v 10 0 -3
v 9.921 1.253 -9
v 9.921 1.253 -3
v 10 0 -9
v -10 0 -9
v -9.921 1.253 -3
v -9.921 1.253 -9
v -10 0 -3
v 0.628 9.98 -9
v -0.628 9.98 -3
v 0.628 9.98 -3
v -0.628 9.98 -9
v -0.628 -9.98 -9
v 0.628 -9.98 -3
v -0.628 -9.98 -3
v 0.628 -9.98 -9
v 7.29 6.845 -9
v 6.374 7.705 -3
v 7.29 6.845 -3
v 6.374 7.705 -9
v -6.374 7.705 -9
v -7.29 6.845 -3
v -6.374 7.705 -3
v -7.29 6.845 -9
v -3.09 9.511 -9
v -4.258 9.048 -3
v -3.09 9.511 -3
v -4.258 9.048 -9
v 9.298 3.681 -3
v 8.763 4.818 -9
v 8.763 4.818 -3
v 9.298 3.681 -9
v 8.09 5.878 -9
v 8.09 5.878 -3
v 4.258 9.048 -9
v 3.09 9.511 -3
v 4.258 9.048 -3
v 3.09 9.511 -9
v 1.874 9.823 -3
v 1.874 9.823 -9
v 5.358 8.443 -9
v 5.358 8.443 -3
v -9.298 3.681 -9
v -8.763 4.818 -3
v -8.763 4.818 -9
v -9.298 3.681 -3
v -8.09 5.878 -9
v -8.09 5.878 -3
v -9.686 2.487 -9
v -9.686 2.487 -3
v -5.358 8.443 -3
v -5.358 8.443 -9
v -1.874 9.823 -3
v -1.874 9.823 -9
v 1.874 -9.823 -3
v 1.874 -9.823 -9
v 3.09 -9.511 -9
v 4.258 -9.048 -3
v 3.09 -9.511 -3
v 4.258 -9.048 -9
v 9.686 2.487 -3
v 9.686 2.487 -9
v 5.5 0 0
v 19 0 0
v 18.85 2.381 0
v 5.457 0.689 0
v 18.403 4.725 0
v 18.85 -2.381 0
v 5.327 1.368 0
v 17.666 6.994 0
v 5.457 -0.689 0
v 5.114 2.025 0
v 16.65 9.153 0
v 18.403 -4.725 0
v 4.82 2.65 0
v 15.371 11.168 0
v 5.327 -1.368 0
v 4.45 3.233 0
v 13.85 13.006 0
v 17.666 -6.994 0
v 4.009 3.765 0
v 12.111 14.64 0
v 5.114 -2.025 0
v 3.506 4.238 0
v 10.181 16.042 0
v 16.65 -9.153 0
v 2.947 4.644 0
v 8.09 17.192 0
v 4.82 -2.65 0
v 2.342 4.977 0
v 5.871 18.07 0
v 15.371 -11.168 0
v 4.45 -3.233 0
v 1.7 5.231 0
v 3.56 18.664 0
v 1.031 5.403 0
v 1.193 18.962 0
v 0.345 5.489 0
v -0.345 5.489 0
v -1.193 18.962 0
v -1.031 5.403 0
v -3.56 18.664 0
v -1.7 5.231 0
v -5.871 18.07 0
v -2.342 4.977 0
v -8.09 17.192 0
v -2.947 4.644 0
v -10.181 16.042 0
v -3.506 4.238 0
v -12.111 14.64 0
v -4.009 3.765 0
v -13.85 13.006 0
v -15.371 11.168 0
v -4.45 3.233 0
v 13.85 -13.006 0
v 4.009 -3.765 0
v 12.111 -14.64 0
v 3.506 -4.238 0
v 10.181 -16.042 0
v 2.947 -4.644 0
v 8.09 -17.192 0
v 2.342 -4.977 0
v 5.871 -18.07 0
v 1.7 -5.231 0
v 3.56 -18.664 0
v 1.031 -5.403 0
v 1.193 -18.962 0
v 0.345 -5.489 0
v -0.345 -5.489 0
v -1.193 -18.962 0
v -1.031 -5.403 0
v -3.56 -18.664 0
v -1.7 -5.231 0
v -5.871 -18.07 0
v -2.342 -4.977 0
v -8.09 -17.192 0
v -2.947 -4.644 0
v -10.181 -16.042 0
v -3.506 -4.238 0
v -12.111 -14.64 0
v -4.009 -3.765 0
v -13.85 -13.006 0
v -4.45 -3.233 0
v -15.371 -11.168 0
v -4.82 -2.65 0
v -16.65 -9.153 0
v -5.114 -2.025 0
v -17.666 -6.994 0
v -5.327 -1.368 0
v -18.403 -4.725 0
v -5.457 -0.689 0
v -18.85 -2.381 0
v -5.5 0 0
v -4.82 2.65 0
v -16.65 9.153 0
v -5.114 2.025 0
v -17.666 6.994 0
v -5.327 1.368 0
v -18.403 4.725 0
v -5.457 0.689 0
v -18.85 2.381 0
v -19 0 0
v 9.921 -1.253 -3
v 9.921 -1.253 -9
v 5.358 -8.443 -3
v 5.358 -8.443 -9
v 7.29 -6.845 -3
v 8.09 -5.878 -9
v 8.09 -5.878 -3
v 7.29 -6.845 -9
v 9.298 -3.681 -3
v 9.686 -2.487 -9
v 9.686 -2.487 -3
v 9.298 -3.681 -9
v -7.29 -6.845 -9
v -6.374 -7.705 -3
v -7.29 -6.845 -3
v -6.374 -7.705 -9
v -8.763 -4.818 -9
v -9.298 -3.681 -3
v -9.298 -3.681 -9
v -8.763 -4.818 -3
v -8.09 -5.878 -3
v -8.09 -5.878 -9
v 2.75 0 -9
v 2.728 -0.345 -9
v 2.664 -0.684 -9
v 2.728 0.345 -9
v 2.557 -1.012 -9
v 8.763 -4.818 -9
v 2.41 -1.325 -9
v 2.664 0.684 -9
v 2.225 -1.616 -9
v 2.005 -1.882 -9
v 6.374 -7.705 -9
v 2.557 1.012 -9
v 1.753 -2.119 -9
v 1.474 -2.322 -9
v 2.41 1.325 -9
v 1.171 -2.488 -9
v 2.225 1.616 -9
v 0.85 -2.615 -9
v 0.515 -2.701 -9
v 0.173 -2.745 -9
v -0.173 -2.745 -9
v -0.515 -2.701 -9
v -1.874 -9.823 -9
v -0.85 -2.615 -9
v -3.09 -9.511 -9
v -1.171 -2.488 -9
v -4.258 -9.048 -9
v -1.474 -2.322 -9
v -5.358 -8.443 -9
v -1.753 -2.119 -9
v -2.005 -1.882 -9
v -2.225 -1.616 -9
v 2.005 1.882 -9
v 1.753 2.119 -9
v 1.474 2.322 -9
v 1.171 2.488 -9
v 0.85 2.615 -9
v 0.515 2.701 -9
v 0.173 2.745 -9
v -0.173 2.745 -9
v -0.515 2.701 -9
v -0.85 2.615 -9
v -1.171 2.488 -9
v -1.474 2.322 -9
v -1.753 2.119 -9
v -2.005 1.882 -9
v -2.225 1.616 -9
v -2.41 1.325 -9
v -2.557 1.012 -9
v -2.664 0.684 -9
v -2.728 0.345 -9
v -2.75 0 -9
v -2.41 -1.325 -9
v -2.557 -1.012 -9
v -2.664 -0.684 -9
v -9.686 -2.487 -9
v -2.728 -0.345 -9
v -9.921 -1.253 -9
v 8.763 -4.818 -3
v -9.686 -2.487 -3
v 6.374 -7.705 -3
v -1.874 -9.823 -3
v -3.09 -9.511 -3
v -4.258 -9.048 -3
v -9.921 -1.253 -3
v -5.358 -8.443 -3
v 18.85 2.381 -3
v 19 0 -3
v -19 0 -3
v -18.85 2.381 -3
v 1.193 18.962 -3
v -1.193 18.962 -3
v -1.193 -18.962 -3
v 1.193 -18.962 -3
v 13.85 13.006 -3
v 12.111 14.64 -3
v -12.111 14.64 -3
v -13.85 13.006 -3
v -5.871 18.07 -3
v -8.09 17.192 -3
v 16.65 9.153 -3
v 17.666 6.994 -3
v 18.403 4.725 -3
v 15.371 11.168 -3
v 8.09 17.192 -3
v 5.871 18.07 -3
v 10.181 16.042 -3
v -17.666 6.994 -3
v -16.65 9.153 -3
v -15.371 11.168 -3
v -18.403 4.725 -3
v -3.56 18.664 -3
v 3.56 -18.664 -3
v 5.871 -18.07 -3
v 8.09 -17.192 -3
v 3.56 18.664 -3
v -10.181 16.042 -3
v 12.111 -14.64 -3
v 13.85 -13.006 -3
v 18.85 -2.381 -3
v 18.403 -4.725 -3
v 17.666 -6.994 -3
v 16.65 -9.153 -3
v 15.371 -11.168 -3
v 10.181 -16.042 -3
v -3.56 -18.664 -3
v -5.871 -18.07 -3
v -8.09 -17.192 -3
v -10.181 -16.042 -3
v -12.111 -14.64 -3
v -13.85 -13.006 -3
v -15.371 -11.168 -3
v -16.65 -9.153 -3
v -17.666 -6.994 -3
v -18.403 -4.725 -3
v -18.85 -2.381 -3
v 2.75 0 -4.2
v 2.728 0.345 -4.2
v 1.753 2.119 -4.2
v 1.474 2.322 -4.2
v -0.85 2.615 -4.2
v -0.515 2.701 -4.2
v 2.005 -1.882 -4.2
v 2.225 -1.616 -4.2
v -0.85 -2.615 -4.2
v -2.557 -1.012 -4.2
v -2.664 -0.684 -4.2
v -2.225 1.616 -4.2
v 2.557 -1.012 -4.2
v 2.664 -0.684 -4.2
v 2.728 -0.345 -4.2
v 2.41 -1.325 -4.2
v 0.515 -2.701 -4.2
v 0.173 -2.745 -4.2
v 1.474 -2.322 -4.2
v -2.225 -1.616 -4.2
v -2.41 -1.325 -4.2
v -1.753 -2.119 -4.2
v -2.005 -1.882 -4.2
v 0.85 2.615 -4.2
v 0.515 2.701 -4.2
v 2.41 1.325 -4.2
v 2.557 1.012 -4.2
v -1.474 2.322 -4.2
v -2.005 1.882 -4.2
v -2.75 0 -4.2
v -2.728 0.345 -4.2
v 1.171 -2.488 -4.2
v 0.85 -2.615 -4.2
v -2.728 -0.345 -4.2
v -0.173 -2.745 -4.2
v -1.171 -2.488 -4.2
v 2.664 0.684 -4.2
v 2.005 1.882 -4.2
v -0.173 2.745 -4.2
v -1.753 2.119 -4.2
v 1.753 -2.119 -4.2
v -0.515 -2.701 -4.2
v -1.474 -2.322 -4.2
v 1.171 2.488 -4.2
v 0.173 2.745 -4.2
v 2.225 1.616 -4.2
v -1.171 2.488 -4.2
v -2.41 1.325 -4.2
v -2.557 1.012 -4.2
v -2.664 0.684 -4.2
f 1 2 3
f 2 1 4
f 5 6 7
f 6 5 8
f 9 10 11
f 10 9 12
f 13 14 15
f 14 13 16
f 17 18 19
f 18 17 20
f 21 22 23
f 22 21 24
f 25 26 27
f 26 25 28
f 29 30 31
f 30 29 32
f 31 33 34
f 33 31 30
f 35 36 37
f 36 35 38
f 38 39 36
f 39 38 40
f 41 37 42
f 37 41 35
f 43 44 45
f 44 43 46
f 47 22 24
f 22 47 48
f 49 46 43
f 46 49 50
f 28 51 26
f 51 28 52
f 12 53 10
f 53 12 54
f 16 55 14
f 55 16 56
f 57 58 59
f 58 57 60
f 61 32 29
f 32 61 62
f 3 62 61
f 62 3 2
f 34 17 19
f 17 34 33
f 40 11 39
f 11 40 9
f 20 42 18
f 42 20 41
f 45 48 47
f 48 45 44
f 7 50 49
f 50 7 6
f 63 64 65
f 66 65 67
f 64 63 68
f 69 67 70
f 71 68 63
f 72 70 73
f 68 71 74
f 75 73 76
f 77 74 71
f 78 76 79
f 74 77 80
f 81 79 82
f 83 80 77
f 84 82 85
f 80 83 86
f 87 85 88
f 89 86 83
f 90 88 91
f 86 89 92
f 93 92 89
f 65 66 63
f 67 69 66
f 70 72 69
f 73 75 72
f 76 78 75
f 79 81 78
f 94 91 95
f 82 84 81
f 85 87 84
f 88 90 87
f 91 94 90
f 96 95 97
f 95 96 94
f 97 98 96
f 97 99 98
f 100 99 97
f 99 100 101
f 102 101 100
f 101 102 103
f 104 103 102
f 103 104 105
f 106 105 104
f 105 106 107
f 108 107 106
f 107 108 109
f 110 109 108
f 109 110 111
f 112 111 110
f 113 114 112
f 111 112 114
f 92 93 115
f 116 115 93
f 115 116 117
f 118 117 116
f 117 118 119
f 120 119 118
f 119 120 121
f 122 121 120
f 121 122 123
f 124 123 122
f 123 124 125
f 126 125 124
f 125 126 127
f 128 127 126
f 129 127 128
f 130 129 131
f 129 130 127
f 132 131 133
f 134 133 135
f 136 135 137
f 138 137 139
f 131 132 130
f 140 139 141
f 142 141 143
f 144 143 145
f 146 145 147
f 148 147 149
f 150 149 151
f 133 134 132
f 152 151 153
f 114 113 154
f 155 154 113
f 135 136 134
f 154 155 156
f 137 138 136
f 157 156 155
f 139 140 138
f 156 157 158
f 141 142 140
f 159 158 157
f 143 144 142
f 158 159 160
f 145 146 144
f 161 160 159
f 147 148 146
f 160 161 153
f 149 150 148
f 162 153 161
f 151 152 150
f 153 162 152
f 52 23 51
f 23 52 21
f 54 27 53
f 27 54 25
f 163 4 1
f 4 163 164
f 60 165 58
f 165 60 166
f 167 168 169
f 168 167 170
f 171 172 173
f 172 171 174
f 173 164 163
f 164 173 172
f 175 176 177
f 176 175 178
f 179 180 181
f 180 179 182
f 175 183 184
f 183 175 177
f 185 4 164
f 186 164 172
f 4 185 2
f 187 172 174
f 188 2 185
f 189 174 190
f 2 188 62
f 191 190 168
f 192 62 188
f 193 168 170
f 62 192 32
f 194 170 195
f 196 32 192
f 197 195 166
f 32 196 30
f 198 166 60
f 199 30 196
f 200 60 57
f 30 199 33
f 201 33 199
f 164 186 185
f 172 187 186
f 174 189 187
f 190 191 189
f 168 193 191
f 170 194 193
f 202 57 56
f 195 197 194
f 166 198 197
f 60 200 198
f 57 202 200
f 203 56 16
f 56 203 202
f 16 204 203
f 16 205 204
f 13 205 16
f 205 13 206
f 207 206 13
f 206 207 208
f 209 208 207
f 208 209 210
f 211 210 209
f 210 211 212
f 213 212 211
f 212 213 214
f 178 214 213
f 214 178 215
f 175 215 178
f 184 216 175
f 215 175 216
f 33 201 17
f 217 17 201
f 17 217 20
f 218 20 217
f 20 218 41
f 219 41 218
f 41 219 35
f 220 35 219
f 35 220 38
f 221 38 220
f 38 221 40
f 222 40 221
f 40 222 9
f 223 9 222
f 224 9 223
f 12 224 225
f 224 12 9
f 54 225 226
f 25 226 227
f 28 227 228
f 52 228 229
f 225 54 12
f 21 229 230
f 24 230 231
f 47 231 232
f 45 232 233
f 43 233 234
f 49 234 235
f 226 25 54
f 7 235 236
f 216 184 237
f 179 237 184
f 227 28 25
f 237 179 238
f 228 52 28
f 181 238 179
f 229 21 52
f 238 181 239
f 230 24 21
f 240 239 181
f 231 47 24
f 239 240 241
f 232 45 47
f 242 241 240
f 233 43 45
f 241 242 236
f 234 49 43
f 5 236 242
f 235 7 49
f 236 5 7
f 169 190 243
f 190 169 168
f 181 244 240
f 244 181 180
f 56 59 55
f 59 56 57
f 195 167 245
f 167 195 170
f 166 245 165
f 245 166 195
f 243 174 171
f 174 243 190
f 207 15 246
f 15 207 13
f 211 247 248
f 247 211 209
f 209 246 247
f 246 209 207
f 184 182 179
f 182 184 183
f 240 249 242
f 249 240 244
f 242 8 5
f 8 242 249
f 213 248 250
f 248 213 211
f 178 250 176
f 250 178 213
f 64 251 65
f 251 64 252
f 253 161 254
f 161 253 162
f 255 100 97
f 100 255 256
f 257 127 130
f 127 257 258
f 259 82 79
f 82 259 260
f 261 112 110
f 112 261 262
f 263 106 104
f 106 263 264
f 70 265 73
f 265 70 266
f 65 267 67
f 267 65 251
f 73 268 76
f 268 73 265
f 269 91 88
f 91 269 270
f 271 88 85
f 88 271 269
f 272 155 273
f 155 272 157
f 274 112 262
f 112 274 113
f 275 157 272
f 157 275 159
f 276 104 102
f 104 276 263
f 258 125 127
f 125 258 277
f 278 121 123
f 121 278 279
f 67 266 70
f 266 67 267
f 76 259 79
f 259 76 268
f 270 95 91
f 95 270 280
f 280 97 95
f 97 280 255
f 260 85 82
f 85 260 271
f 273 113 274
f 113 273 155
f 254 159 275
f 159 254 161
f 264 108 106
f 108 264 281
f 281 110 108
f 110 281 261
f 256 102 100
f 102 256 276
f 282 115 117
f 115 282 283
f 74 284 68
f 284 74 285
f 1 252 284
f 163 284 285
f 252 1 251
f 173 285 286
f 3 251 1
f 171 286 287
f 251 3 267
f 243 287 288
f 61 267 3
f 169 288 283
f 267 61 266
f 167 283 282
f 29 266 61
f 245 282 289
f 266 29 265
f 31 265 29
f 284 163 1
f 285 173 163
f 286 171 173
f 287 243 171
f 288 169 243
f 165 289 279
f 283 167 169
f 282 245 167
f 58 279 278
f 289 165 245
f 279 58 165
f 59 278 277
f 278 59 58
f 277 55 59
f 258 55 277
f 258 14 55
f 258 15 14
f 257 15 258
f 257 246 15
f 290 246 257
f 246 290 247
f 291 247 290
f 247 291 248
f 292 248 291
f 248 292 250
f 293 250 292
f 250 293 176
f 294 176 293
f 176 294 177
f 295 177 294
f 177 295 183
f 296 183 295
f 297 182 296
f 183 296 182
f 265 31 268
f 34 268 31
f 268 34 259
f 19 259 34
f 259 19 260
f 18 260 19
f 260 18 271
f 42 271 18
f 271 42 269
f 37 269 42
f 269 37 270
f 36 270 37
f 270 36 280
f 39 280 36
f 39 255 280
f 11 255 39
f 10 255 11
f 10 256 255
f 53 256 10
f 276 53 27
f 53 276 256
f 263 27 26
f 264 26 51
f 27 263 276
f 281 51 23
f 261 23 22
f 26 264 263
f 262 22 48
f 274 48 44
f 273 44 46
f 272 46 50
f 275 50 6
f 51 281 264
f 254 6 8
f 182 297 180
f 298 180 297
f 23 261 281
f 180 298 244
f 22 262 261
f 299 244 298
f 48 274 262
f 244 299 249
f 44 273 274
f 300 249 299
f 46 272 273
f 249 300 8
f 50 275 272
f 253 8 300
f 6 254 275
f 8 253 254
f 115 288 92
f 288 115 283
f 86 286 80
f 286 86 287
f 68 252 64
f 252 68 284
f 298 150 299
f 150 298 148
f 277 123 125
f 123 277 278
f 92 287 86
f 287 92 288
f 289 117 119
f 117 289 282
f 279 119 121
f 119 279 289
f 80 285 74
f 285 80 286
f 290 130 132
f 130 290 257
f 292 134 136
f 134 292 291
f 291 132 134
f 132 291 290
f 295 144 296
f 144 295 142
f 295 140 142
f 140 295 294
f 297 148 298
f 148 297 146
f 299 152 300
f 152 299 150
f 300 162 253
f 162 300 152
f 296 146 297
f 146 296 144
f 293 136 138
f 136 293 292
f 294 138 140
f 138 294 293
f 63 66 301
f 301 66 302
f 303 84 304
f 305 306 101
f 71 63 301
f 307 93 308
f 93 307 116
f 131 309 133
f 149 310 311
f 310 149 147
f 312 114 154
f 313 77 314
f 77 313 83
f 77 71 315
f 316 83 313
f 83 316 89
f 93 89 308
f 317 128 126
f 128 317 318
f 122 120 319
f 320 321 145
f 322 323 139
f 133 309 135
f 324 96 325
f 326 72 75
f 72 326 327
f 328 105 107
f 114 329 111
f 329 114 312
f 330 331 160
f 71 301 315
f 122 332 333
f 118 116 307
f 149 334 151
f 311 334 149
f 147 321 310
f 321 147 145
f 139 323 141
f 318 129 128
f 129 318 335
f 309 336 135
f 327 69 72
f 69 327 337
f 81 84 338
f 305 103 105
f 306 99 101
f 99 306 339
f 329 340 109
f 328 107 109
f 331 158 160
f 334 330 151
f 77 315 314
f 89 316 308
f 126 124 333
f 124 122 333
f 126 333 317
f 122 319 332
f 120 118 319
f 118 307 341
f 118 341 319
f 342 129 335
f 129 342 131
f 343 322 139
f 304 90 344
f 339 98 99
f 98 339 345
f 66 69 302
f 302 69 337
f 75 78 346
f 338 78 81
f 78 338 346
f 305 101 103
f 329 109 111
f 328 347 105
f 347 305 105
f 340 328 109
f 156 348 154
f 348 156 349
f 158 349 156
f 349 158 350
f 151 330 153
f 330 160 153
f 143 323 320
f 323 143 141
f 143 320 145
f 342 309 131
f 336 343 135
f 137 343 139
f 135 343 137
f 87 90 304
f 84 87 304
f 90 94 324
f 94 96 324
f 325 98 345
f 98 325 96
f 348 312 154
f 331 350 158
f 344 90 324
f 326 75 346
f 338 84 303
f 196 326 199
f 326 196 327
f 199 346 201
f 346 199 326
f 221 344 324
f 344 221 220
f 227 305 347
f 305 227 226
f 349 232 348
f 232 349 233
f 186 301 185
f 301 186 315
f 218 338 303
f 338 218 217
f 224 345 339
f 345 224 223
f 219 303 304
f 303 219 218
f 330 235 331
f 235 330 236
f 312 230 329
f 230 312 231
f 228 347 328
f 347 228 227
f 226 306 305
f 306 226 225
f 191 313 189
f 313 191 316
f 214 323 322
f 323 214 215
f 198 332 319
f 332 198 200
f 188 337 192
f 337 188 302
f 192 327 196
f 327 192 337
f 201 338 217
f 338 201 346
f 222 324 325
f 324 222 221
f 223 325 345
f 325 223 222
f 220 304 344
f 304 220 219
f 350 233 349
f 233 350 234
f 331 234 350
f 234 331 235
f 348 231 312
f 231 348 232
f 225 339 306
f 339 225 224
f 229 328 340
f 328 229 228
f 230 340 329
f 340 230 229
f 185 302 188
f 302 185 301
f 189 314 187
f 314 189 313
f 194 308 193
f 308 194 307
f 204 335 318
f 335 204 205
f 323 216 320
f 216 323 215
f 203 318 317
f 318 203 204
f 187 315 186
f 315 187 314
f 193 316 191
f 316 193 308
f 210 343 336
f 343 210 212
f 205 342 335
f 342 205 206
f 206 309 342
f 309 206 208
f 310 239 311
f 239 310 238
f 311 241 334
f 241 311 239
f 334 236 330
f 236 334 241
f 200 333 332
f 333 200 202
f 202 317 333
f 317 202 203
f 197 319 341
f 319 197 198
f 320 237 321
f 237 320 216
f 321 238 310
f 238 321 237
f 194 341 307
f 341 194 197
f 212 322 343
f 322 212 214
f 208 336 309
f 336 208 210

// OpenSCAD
$fn = 50;


difference() {
	union() {
		translate(v = [0, 0, -9.0000000000]) {
			cylinder(h = 9, r = 10.0000000000);
		}
		translate(v = [0, 0, -3.0000000000]) {
			cylinder(h = 3, r = 19.0000000000);
		}
	}
	union() {
		translate(v = [0, 0, 0]) {
			rotate(a = [0, 0, 0]) {
				difference() {
					union() {
						#translate(v = [0, 0, -9.0000000000]) {
							cylinder(h = 9, r = 2.2500000000);
						}
						#translate(v = [0, 0, -4.2000000000]) {
							cylinder(h = 4.2000000000, r = 10.0000000000, r1 = 2.7500000000, r2 = 5.5000000000);
						}
						#translate(v = [0, 0, -9.0000000000]) {
							cylinder(h = 9, r = 2.7500000000);
						}
						#translate(v = [0, 0, -9.0000000000]) {
							cylinder(h = 9, r = 2.2500000000);
						}
					}
					union();
				}
			}
		}
	}
}
